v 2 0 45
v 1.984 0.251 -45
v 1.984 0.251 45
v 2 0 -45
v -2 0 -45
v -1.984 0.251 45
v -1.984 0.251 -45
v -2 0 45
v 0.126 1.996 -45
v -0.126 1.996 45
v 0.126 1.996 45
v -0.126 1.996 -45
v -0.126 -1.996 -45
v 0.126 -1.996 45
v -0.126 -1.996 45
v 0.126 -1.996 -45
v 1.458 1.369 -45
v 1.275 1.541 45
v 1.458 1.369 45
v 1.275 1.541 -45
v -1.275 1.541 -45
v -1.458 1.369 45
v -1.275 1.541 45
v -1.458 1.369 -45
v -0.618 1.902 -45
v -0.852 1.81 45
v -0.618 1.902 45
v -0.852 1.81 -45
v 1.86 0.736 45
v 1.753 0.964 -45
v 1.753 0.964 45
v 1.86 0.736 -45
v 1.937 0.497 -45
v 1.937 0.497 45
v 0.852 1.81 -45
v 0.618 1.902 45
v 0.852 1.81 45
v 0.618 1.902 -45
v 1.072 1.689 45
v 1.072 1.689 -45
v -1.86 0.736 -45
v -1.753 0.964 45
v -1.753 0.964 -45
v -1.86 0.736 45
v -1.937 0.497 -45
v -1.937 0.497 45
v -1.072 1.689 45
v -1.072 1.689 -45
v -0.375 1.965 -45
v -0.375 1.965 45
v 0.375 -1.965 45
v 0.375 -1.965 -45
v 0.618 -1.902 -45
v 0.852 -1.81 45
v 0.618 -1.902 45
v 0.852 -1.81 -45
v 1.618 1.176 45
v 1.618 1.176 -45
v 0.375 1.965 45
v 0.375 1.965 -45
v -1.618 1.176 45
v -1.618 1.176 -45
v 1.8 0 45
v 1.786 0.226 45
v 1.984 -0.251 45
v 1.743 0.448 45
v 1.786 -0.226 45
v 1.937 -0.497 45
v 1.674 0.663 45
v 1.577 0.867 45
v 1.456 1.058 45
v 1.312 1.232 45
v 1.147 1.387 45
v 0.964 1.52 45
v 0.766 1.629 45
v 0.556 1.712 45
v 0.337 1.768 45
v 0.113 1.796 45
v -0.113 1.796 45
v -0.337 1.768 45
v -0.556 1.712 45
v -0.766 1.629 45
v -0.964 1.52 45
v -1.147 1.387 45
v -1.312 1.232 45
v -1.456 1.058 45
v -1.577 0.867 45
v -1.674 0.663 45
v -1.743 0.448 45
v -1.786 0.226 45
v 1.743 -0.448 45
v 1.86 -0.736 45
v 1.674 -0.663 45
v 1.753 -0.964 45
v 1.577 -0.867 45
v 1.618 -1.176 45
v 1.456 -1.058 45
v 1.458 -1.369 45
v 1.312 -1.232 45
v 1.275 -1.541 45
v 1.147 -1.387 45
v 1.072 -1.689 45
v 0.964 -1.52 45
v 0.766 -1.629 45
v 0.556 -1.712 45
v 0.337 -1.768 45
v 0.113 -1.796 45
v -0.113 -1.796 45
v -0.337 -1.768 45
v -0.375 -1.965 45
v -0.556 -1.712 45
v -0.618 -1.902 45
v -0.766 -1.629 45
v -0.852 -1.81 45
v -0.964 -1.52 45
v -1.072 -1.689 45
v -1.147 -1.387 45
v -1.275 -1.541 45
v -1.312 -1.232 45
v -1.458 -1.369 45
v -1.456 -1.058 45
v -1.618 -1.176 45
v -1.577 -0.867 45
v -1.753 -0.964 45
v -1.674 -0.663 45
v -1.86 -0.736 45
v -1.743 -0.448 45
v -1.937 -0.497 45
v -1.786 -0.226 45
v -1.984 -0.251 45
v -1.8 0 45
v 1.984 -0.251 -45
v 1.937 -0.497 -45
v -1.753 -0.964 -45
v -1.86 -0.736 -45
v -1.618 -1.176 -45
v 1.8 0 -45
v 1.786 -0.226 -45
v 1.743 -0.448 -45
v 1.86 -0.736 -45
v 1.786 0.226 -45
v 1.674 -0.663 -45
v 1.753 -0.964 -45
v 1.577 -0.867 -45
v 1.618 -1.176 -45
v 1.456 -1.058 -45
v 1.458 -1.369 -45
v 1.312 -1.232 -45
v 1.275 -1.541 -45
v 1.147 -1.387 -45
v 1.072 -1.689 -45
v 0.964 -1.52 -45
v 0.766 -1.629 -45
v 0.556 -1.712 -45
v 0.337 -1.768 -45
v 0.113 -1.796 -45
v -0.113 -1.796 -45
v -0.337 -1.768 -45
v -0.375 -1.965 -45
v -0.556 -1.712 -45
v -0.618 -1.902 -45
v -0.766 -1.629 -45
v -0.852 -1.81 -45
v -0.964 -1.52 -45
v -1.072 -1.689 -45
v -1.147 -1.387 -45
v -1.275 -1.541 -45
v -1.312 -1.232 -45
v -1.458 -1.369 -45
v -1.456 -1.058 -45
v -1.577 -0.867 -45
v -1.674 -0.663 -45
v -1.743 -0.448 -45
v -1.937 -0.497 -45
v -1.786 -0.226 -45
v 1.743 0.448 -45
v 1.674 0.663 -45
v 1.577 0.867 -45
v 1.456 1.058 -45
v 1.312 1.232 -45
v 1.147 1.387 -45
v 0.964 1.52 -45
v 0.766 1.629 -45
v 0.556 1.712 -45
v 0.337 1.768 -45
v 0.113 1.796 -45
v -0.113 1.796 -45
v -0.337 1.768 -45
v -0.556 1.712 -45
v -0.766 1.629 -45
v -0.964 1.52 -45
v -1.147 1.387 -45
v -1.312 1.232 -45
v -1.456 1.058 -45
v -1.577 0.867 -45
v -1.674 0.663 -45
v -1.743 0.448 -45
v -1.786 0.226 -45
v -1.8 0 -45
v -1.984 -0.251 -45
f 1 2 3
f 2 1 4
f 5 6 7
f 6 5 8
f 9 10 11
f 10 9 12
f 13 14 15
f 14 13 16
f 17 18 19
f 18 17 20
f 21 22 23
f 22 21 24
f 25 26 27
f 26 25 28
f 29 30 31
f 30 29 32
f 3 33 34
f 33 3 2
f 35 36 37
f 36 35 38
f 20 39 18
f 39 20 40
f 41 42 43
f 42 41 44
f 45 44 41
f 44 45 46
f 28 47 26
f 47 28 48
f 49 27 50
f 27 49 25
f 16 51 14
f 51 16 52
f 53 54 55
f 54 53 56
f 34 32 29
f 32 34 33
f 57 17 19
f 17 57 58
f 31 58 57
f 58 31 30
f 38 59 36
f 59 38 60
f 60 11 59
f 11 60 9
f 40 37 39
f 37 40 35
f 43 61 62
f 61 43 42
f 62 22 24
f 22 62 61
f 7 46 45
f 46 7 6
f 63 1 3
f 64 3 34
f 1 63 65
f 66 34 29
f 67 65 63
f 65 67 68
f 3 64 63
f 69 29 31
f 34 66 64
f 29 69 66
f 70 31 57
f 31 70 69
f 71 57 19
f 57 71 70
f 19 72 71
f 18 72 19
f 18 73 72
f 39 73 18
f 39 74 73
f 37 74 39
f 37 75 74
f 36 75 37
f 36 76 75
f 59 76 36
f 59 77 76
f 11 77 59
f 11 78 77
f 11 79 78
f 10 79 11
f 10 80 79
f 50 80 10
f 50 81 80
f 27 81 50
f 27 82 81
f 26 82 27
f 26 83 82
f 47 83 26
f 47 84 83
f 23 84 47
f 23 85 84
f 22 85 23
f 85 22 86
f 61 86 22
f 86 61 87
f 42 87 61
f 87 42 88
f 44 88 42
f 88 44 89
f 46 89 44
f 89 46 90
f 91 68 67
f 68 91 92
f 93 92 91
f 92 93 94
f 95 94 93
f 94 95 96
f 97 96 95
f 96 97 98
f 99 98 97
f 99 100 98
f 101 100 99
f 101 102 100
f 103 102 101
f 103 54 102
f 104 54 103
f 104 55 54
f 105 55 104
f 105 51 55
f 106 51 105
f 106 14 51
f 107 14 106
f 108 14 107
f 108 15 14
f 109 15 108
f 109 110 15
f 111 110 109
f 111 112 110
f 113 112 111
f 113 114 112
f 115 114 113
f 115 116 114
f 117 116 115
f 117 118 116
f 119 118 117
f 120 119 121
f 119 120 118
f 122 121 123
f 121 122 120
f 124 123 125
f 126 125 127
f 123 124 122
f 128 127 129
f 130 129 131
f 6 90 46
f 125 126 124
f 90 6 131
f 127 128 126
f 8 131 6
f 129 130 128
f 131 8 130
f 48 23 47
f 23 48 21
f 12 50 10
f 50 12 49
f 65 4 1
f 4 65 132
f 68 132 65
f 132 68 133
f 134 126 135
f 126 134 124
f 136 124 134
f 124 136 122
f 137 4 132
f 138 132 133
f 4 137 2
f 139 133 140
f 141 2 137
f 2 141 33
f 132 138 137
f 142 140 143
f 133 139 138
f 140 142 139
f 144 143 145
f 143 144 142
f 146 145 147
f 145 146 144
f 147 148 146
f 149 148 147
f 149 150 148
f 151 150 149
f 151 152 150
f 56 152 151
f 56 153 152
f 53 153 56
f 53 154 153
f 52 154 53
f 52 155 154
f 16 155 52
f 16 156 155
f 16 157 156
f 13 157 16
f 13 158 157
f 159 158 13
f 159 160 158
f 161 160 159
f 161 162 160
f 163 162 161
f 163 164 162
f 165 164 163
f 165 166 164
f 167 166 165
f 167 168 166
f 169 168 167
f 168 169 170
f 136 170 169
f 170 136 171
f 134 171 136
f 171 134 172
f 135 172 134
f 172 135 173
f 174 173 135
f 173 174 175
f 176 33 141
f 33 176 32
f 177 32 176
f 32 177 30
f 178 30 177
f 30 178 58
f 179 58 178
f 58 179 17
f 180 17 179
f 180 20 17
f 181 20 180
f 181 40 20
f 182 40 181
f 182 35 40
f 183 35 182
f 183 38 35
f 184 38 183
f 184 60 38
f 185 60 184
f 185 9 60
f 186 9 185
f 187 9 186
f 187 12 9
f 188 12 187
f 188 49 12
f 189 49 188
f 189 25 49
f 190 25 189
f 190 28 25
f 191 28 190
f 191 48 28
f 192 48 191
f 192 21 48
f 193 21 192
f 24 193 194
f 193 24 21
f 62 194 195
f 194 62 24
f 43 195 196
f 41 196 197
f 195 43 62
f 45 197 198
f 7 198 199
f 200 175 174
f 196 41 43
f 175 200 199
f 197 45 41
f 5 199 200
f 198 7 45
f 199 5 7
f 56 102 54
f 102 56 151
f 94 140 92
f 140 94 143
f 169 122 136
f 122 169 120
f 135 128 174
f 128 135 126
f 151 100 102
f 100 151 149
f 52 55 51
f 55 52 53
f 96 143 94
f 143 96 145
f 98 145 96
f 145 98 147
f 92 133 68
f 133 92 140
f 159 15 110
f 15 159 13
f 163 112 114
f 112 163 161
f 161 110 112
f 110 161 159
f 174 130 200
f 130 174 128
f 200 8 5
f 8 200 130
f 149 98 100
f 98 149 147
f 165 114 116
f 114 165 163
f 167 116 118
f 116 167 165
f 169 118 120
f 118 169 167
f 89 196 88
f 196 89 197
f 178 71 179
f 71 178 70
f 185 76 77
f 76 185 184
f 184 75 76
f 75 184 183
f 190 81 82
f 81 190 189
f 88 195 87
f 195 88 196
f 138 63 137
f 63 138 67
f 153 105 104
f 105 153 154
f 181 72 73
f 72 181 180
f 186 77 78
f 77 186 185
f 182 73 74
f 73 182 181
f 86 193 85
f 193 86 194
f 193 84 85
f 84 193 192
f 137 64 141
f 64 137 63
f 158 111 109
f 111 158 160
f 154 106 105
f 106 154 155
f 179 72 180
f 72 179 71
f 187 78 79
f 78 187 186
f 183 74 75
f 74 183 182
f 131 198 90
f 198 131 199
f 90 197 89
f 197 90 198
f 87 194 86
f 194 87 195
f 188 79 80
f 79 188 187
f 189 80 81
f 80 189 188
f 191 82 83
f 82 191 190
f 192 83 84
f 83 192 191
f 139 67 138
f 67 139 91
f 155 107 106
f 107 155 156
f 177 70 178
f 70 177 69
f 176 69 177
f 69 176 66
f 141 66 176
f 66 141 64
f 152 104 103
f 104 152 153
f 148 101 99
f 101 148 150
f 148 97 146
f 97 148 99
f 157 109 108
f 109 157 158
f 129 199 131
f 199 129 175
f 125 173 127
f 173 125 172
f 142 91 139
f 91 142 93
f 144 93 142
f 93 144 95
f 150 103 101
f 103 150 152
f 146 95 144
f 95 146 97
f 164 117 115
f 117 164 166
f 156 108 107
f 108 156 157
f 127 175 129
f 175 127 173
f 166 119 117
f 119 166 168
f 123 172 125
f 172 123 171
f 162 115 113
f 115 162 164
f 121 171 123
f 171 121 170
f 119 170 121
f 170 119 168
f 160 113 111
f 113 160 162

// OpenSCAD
$fn = 50;


difference() {
	union() {
		translate(v = [0, 0, -45.0000000000]) {
			cylinder(h = 90, r = 2.0000000000);
		}
	}
	union() {
		translate(v = [0, 0, -100.0000000000]) {
			cylinder(h = 200, r = 1.8000000000);
		}
	}
}
